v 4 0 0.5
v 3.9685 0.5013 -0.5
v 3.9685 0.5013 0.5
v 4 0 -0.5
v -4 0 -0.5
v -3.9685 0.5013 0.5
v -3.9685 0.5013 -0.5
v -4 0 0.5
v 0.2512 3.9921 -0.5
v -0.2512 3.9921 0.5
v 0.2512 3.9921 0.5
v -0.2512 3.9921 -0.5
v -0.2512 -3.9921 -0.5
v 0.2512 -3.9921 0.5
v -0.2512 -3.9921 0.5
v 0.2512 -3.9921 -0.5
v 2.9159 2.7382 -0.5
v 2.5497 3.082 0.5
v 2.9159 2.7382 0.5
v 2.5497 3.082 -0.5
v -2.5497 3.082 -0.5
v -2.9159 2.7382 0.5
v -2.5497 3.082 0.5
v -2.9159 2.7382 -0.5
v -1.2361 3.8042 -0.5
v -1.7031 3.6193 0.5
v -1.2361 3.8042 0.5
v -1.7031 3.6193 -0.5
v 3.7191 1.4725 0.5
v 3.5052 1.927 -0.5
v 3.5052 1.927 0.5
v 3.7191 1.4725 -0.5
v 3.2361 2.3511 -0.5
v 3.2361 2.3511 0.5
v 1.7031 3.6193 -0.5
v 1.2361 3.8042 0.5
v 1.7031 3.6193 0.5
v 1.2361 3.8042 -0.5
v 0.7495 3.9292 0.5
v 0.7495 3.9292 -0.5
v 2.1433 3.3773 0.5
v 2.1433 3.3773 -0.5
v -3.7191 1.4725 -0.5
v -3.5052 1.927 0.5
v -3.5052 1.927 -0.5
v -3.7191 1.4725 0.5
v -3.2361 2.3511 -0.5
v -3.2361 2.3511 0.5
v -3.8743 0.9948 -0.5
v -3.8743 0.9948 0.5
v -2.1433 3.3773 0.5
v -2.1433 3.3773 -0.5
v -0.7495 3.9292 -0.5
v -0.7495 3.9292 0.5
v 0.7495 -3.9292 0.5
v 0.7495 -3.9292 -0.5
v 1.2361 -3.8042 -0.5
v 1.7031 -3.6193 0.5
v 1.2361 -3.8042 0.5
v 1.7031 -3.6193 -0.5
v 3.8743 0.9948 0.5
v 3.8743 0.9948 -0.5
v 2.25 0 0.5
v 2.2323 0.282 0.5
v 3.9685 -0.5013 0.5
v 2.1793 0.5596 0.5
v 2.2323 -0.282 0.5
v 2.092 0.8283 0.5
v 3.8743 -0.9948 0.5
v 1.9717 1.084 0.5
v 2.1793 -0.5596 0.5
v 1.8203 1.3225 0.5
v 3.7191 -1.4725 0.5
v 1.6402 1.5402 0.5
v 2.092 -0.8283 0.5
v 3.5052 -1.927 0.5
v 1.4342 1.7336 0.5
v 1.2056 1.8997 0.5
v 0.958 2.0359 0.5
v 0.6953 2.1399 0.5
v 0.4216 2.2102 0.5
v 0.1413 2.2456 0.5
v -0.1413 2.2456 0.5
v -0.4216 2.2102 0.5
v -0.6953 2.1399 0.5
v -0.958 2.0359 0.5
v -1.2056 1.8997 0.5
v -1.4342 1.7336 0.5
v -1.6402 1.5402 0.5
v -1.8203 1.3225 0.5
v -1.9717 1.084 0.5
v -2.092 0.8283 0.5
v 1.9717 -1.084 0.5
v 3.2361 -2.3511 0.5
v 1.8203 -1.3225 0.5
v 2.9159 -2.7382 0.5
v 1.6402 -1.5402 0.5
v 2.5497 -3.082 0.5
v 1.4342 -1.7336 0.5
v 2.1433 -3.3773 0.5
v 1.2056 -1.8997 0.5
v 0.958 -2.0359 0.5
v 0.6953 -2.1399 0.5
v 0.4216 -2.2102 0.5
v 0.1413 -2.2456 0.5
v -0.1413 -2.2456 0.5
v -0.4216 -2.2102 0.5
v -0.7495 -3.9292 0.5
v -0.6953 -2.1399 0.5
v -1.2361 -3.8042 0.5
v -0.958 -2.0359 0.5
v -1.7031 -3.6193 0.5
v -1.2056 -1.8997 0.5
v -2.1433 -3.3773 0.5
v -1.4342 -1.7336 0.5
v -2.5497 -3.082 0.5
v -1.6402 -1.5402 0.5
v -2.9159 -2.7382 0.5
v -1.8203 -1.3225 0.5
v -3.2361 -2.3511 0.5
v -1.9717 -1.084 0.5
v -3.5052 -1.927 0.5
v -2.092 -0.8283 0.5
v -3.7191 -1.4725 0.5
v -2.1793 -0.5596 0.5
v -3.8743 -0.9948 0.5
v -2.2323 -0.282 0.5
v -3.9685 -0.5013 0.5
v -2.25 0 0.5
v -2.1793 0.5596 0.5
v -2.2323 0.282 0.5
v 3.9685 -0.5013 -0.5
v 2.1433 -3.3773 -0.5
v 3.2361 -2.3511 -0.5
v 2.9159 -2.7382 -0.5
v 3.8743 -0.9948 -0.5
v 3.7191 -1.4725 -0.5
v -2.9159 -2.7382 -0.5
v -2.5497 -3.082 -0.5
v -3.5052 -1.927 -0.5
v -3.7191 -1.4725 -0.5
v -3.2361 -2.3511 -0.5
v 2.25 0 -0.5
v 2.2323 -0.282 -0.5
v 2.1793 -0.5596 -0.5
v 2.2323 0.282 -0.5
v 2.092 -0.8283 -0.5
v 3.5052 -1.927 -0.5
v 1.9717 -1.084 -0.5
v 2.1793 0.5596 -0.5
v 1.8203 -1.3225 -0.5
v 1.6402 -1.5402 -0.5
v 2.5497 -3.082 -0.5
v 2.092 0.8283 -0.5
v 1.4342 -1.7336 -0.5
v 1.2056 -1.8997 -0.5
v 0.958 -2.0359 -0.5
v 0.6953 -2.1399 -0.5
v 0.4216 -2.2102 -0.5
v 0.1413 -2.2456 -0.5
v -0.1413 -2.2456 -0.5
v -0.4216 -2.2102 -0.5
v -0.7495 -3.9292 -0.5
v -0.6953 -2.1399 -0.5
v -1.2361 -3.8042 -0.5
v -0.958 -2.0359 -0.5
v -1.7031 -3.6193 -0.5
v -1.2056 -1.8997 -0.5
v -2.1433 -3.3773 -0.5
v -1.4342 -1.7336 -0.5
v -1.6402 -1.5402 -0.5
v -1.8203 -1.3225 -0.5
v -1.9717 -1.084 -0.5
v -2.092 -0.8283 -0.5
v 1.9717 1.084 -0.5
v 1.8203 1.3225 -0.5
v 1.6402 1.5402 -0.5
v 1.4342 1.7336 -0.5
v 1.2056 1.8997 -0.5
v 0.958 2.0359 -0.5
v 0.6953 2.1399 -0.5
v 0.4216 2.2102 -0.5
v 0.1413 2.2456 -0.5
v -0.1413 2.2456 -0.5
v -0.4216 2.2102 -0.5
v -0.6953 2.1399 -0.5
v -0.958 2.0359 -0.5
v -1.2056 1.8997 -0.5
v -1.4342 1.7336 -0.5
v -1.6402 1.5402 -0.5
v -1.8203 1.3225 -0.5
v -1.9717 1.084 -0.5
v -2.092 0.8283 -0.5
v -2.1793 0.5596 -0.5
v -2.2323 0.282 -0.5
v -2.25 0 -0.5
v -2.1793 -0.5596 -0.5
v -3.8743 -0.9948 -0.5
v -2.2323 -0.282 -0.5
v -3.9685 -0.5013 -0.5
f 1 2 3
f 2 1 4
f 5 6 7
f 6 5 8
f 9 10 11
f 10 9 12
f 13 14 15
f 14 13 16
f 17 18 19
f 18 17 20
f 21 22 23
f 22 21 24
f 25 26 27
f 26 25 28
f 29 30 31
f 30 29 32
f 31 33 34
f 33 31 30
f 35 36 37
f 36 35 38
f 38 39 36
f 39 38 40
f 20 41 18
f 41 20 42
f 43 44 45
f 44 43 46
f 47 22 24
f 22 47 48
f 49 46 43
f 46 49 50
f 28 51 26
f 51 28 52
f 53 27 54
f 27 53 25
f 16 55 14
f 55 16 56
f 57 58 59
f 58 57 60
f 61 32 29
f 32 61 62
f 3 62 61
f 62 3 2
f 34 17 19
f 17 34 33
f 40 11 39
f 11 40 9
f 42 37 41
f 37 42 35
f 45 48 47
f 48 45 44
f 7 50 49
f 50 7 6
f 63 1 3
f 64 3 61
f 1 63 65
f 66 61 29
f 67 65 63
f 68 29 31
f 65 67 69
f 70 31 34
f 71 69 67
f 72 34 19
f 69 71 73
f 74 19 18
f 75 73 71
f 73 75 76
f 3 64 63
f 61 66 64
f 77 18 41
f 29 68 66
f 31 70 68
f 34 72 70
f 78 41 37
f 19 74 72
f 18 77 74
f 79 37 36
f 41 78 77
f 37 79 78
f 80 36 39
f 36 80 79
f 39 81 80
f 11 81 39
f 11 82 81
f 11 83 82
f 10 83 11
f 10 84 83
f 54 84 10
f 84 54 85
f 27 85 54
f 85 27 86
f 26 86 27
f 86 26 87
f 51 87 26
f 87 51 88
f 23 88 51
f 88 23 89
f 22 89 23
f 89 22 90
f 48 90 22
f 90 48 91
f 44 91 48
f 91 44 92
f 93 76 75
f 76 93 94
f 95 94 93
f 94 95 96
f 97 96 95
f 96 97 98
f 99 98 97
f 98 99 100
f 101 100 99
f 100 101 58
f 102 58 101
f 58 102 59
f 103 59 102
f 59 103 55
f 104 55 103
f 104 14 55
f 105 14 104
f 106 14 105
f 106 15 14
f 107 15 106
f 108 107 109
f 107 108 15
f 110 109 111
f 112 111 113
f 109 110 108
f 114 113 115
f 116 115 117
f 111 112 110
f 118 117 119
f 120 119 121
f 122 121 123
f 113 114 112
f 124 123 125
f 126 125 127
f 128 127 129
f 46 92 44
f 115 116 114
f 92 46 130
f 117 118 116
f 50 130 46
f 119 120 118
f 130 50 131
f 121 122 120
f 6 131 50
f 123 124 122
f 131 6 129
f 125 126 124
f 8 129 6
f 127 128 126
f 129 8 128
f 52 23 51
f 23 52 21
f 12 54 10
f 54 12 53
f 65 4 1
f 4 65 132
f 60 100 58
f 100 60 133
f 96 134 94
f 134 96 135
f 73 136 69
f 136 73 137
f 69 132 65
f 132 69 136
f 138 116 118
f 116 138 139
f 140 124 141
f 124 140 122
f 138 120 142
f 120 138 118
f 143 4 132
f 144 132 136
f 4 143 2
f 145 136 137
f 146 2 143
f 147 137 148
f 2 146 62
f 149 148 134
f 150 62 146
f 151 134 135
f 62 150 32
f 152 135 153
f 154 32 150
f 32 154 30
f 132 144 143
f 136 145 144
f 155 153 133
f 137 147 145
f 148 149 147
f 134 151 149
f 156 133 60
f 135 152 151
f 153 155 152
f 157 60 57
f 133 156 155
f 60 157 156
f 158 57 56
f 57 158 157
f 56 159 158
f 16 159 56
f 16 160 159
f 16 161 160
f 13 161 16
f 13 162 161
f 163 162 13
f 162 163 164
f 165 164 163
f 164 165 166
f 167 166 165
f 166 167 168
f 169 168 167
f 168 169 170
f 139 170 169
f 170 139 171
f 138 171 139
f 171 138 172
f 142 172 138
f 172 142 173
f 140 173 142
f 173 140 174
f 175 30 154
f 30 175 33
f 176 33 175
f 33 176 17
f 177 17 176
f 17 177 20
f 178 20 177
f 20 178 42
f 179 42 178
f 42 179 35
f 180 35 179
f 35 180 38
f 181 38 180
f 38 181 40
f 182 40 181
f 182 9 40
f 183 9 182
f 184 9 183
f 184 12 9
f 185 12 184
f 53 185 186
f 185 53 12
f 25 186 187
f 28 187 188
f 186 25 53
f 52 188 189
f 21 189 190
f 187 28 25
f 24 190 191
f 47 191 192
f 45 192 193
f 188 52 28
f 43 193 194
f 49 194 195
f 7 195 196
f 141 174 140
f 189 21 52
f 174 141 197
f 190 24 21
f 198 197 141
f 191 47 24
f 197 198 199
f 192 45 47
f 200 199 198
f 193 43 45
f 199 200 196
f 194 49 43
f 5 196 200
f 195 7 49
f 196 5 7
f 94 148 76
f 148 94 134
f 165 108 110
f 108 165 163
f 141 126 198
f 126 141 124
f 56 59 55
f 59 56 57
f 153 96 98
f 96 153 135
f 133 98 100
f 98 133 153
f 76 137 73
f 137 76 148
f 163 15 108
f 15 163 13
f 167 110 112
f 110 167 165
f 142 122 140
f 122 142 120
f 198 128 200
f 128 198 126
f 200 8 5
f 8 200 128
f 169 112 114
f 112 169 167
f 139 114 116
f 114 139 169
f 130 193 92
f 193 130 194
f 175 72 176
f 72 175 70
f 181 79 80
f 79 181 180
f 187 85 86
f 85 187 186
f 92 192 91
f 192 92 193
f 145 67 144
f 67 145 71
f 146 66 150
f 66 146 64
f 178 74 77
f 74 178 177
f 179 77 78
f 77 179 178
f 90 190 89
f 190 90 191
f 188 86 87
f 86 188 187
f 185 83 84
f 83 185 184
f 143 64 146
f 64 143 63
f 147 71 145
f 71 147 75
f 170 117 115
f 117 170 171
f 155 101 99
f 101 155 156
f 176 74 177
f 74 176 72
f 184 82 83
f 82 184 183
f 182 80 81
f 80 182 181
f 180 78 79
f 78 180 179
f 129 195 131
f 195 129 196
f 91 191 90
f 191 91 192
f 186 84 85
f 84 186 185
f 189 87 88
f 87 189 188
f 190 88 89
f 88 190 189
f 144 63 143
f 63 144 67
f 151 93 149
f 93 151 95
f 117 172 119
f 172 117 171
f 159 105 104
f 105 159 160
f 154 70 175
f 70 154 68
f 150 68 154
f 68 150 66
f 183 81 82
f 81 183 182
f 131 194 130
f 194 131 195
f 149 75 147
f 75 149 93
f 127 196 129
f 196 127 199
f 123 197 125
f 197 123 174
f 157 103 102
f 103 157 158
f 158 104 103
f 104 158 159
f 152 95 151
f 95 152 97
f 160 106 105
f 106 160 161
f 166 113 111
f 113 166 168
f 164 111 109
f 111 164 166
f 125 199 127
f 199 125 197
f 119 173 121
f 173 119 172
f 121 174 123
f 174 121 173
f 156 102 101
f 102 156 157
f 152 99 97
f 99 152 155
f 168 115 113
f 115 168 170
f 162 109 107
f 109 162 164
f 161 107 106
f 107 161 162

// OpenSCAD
$fn = 50;


difference() {
	union() {
		translate(v = [0, 0, -0.5000000000]) {
			cylinder(h = 1, r = 4.0000000000);
		}
	}
	union() {
		translate(v = [0, 0, -100.0000000000]) {
			cylinder(h = 200, r = 2.2500000000);
		}
	}
}
